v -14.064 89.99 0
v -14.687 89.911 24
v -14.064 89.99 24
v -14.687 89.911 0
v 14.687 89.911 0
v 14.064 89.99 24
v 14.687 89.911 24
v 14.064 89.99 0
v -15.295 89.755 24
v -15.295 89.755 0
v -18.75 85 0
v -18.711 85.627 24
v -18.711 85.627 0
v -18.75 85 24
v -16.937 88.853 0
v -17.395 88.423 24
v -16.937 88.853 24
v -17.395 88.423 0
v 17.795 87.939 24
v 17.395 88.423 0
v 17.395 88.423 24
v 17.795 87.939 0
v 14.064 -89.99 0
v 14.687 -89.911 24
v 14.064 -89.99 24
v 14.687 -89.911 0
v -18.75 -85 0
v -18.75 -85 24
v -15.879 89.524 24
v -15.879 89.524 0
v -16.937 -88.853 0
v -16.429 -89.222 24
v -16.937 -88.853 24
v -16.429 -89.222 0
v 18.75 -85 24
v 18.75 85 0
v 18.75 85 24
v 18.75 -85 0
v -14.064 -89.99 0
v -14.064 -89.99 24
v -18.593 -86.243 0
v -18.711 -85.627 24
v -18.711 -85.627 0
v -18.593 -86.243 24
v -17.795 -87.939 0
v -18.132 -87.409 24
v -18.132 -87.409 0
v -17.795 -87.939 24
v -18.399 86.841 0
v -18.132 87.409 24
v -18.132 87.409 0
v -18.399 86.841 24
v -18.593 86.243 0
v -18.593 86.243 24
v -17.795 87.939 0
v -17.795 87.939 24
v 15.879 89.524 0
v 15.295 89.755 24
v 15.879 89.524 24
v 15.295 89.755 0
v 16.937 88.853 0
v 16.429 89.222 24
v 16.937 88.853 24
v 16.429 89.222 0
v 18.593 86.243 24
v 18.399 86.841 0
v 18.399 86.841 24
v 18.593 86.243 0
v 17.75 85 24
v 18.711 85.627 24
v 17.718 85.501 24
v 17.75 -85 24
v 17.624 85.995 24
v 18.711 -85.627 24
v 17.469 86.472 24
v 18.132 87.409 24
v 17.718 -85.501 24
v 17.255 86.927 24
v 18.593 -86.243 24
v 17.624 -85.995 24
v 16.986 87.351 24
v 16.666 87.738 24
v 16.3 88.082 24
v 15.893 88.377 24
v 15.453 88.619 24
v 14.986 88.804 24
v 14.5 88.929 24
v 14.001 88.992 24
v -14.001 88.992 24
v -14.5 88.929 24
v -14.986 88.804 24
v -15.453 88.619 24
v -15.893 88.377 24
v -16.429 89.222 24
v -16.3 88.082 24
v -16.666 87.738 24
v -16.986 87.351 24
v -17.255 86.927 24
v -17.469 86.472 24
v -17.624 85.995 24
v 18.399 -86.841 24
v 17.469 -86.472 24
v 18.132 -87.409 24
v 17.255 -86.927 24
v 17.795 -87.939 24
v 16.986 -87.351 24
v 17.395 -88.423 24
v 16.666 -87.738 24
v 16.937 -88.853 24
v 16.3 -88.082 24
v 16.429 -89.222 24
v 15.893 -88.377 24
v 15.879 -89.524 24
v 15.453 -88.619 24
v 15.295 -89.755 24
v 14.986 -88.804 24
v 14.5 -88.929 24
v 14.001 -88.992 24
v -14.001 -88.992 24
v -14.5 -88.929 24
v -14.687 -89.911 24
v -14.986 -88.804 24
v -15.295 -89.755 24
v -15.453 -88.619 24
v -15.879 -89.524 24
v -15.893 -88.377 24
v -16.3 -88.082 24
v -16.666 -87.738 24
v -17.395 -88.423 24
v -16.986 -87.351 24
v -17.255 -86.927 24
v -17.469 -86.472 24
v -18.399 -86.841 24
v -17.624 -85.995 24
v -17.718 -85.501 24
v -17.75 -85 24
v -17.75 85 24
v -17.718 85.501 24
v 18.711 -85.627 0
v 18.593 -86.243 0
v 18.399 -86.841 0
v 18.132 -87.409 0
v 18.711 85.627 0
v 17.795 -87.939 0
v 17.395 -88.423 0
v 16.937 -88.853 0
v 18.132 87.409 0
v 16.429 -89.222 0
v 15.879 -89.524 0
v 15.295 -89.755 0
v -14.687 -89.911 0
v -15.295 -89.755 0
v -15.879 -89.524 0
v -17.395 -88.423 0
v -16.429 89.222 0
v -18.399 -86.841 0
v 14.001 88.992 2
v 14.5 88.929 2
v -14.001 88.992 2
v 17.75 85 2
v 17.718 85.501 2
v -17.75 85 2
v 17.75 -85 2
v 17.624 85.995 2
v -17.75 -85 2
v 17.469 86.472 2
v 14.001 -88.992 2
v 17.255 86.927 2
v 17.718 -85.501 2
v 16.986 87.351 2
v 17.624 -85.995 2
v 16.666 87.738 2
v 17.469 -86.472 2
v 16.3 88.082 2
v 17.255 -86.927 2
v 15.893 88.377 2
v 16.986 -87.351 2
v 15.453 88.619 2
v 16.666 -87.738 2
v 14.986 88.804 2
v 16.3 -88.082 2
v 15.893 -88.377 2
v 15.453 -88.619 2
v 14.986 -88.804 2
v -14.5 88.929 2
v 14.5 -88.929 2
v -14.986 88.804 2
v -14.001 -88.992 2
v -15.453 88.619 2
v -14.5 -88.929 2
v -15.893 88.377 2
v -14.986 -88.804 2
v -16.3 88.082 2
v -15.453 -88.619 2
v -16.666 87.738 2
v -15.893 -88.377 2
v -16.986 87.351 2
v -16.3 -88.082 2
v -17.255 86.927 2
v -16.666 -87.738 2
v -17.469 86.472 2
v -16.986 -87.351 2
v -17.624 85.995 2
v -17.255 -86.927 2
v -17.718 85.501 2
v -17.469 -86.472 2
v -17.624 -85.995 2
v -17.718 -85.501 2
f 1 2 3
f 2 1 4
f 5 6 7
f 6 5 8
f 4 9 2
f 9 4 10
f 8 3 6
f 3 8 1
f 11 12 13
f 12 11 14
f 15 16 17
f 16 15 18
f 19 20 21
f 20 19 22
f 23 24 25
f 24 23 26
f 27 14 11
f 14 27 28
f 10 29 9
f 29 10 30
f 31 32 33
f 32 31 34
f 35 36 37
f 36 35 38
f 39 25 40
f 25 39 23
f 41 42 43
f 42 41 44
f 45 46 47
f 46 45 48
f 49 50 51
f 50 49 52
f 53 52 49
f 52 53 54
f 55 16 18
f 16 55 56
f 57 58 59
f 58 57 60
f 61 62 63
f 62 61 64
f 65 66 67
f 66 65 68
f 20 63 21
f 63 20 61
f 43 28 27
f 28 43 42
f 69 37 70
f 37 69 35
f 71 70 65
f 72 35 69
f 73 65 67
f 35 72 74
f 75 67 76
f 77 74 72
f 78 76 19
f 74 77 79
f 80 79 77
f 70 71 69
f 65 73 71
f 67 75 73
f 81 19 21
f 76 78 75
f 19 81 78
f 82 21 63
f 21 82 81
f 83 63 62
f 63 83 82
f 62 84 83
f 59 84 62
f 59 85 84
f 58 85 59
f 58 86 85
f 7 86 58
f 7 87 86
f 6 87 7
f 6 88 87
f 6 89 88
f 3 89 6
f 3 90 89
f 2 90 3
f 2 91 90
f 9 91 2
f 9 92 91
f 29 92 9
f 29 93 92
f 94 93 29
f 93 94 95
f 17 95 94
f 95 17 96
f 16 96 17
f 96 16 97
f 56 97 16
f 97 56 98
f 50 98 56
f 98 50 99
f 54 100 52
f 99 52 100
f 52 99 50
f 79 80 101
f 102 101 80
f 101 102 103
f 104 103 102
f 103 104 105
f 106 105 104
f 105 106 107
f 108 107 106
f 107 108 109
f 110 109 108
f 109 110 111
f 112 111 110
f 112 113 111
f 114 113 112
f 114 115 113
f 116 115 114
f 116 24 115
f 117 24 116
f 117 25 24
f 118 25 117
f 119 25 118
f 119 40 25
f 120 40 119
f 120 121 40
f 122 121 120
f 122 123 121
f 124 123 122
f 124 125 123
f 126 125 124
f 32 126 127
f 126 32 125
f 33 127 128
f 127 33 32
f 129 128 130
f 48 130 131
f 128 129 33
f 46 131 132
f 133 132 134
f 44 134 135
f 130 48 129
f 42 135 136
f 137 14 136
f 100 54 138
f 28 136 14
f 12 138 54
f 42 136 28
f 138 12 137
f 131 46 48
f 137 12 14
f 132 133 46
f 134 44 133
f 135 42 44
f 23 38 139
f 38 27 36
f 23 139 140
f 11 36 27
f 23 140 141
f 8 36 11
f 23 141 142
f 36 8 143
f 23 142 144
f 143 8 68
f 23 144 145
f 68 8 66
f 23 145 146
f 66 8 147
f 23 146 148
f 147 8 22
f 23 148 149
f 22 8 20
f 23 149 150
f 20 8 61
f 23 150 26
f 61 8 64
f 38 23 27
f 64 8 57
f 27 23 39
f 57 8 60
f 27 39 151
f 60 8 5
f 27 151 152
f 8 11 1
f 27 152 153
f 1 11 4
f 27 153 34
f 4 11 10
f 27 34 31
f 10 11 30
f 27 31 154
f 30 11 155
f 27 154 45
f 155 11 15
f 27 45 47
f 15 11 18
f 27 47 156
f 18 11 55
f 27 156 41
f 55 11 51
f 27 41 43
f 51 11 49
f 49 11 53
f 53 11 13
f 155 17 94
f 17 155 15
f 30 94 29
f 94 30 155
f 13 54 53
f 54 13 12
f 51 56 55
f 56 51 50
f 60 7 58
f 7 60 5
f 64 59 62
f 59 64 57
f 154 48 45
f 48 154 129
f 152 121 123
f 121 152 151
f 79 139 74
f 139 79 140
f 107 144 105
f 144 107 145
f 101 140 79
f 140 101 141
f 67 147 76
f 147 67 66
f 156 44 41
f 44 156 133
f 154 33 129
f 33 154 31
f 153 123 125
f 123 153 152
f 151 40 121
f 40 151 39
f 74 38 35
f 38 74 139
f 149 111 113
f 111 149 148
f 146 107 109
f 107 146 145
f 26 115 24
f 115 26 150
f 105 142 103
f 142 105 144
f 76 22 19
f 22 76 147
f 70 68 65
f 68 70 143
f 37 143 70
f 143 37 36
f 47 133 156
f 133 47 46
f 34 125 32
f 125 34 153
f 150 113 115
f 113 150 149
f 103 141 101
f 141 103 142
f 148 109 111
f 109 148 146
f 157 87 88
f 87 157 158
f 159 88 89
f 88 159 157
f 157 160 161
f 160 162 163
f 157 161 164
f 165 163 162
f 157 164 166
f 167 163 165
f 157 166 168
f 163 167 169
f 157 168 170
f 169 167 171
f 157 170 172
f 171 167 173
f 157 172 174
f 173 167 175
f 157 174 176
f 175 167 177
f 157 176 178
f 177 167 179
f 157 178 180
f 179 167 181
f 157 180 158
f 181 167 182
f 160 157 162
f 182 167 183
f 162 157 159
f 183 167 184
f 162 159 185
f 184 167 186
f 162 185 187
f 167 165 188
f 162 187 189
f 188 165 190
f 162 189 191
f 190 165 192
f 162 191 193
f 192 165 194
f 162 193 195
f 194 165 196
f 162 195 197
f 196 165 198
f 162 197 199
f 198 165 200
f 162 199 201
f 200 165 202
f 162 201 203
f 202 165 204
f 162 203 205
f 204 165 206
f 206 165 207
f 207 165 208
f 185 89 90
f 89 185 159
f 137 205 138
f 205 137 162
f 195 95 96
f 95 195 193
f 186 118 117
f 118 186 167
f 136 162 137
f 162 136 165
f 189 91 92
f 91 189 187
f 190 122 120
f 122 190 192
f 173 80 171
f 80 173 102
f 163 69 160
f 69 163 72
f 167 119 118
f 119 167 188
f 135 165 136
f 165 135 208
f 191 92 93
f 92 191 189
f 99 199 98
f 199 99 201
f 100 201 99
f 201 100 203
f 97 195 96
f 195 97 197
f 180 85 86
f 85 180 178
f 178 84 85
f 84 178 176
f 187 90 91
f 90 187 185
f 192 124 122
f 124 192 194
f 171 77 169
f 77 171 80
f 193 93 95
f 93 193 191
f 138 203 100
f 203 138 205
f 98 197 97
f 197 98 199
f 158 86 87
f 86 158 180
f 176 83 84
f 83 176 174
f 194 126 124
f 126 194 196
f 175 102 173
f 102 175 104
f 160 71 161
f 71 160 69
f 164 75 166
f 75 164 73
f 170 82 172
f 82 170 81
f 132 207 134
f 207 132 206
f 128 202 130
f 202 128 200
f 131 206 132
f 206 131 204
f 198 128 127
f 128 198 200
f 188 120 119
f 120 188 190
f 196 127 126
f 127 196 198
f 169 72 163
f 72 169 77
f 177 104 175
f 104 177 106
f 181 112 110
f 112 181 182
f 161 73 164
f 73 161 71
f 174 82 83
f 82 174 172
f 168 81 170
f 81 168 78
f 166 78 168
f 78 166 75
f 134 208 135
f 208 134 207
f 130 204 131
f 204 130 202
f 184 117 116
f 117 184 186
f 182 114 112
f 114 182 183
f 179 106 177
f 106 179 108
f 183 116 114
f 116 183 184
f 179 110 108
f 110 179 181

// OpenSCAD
$fn = 50;


difference() {
	union() {
		hull() {
			translate(v = [-13.7500000000, 85.0000000000, 0]) {
				cylinder(h = 24, r = 5);
			}
			translate(v = [13.7500000000, 85.0000000000, 0]) {
				cylinder(h = 24, r = 5);
			}
			translate(v = [-13.7500000000, -85.0000000000, 0]) {
				cylinder(h = 24, r = 5);
			}
			translate(v = [13.7500000000, -85.0000000000, 0]) {
				cylinder(h = 24, r = 5);
			}
		}
	}
	union() {
		translate(v = [0, 0, 2]) {
			hull() {
				translate(v = [-13.7500000000, 85.0000000000, 0]) {
					cylinder(h = 22, r = 4);
				}
				translate(v = [13.7500000000, 85.0000000000, 0]) {
					cylinder(h = 22, r = 4);
				}
				translate(v = [-13.7500000000, -85.0000000000, 0]) {
					cylinder(h = 22, r = 4);
				}
				translate(v = [13.7500000000, -85.0000000000, 0]) {
					cylinder(h = 22, r = 4);
				}
			}
		}
	}
}
